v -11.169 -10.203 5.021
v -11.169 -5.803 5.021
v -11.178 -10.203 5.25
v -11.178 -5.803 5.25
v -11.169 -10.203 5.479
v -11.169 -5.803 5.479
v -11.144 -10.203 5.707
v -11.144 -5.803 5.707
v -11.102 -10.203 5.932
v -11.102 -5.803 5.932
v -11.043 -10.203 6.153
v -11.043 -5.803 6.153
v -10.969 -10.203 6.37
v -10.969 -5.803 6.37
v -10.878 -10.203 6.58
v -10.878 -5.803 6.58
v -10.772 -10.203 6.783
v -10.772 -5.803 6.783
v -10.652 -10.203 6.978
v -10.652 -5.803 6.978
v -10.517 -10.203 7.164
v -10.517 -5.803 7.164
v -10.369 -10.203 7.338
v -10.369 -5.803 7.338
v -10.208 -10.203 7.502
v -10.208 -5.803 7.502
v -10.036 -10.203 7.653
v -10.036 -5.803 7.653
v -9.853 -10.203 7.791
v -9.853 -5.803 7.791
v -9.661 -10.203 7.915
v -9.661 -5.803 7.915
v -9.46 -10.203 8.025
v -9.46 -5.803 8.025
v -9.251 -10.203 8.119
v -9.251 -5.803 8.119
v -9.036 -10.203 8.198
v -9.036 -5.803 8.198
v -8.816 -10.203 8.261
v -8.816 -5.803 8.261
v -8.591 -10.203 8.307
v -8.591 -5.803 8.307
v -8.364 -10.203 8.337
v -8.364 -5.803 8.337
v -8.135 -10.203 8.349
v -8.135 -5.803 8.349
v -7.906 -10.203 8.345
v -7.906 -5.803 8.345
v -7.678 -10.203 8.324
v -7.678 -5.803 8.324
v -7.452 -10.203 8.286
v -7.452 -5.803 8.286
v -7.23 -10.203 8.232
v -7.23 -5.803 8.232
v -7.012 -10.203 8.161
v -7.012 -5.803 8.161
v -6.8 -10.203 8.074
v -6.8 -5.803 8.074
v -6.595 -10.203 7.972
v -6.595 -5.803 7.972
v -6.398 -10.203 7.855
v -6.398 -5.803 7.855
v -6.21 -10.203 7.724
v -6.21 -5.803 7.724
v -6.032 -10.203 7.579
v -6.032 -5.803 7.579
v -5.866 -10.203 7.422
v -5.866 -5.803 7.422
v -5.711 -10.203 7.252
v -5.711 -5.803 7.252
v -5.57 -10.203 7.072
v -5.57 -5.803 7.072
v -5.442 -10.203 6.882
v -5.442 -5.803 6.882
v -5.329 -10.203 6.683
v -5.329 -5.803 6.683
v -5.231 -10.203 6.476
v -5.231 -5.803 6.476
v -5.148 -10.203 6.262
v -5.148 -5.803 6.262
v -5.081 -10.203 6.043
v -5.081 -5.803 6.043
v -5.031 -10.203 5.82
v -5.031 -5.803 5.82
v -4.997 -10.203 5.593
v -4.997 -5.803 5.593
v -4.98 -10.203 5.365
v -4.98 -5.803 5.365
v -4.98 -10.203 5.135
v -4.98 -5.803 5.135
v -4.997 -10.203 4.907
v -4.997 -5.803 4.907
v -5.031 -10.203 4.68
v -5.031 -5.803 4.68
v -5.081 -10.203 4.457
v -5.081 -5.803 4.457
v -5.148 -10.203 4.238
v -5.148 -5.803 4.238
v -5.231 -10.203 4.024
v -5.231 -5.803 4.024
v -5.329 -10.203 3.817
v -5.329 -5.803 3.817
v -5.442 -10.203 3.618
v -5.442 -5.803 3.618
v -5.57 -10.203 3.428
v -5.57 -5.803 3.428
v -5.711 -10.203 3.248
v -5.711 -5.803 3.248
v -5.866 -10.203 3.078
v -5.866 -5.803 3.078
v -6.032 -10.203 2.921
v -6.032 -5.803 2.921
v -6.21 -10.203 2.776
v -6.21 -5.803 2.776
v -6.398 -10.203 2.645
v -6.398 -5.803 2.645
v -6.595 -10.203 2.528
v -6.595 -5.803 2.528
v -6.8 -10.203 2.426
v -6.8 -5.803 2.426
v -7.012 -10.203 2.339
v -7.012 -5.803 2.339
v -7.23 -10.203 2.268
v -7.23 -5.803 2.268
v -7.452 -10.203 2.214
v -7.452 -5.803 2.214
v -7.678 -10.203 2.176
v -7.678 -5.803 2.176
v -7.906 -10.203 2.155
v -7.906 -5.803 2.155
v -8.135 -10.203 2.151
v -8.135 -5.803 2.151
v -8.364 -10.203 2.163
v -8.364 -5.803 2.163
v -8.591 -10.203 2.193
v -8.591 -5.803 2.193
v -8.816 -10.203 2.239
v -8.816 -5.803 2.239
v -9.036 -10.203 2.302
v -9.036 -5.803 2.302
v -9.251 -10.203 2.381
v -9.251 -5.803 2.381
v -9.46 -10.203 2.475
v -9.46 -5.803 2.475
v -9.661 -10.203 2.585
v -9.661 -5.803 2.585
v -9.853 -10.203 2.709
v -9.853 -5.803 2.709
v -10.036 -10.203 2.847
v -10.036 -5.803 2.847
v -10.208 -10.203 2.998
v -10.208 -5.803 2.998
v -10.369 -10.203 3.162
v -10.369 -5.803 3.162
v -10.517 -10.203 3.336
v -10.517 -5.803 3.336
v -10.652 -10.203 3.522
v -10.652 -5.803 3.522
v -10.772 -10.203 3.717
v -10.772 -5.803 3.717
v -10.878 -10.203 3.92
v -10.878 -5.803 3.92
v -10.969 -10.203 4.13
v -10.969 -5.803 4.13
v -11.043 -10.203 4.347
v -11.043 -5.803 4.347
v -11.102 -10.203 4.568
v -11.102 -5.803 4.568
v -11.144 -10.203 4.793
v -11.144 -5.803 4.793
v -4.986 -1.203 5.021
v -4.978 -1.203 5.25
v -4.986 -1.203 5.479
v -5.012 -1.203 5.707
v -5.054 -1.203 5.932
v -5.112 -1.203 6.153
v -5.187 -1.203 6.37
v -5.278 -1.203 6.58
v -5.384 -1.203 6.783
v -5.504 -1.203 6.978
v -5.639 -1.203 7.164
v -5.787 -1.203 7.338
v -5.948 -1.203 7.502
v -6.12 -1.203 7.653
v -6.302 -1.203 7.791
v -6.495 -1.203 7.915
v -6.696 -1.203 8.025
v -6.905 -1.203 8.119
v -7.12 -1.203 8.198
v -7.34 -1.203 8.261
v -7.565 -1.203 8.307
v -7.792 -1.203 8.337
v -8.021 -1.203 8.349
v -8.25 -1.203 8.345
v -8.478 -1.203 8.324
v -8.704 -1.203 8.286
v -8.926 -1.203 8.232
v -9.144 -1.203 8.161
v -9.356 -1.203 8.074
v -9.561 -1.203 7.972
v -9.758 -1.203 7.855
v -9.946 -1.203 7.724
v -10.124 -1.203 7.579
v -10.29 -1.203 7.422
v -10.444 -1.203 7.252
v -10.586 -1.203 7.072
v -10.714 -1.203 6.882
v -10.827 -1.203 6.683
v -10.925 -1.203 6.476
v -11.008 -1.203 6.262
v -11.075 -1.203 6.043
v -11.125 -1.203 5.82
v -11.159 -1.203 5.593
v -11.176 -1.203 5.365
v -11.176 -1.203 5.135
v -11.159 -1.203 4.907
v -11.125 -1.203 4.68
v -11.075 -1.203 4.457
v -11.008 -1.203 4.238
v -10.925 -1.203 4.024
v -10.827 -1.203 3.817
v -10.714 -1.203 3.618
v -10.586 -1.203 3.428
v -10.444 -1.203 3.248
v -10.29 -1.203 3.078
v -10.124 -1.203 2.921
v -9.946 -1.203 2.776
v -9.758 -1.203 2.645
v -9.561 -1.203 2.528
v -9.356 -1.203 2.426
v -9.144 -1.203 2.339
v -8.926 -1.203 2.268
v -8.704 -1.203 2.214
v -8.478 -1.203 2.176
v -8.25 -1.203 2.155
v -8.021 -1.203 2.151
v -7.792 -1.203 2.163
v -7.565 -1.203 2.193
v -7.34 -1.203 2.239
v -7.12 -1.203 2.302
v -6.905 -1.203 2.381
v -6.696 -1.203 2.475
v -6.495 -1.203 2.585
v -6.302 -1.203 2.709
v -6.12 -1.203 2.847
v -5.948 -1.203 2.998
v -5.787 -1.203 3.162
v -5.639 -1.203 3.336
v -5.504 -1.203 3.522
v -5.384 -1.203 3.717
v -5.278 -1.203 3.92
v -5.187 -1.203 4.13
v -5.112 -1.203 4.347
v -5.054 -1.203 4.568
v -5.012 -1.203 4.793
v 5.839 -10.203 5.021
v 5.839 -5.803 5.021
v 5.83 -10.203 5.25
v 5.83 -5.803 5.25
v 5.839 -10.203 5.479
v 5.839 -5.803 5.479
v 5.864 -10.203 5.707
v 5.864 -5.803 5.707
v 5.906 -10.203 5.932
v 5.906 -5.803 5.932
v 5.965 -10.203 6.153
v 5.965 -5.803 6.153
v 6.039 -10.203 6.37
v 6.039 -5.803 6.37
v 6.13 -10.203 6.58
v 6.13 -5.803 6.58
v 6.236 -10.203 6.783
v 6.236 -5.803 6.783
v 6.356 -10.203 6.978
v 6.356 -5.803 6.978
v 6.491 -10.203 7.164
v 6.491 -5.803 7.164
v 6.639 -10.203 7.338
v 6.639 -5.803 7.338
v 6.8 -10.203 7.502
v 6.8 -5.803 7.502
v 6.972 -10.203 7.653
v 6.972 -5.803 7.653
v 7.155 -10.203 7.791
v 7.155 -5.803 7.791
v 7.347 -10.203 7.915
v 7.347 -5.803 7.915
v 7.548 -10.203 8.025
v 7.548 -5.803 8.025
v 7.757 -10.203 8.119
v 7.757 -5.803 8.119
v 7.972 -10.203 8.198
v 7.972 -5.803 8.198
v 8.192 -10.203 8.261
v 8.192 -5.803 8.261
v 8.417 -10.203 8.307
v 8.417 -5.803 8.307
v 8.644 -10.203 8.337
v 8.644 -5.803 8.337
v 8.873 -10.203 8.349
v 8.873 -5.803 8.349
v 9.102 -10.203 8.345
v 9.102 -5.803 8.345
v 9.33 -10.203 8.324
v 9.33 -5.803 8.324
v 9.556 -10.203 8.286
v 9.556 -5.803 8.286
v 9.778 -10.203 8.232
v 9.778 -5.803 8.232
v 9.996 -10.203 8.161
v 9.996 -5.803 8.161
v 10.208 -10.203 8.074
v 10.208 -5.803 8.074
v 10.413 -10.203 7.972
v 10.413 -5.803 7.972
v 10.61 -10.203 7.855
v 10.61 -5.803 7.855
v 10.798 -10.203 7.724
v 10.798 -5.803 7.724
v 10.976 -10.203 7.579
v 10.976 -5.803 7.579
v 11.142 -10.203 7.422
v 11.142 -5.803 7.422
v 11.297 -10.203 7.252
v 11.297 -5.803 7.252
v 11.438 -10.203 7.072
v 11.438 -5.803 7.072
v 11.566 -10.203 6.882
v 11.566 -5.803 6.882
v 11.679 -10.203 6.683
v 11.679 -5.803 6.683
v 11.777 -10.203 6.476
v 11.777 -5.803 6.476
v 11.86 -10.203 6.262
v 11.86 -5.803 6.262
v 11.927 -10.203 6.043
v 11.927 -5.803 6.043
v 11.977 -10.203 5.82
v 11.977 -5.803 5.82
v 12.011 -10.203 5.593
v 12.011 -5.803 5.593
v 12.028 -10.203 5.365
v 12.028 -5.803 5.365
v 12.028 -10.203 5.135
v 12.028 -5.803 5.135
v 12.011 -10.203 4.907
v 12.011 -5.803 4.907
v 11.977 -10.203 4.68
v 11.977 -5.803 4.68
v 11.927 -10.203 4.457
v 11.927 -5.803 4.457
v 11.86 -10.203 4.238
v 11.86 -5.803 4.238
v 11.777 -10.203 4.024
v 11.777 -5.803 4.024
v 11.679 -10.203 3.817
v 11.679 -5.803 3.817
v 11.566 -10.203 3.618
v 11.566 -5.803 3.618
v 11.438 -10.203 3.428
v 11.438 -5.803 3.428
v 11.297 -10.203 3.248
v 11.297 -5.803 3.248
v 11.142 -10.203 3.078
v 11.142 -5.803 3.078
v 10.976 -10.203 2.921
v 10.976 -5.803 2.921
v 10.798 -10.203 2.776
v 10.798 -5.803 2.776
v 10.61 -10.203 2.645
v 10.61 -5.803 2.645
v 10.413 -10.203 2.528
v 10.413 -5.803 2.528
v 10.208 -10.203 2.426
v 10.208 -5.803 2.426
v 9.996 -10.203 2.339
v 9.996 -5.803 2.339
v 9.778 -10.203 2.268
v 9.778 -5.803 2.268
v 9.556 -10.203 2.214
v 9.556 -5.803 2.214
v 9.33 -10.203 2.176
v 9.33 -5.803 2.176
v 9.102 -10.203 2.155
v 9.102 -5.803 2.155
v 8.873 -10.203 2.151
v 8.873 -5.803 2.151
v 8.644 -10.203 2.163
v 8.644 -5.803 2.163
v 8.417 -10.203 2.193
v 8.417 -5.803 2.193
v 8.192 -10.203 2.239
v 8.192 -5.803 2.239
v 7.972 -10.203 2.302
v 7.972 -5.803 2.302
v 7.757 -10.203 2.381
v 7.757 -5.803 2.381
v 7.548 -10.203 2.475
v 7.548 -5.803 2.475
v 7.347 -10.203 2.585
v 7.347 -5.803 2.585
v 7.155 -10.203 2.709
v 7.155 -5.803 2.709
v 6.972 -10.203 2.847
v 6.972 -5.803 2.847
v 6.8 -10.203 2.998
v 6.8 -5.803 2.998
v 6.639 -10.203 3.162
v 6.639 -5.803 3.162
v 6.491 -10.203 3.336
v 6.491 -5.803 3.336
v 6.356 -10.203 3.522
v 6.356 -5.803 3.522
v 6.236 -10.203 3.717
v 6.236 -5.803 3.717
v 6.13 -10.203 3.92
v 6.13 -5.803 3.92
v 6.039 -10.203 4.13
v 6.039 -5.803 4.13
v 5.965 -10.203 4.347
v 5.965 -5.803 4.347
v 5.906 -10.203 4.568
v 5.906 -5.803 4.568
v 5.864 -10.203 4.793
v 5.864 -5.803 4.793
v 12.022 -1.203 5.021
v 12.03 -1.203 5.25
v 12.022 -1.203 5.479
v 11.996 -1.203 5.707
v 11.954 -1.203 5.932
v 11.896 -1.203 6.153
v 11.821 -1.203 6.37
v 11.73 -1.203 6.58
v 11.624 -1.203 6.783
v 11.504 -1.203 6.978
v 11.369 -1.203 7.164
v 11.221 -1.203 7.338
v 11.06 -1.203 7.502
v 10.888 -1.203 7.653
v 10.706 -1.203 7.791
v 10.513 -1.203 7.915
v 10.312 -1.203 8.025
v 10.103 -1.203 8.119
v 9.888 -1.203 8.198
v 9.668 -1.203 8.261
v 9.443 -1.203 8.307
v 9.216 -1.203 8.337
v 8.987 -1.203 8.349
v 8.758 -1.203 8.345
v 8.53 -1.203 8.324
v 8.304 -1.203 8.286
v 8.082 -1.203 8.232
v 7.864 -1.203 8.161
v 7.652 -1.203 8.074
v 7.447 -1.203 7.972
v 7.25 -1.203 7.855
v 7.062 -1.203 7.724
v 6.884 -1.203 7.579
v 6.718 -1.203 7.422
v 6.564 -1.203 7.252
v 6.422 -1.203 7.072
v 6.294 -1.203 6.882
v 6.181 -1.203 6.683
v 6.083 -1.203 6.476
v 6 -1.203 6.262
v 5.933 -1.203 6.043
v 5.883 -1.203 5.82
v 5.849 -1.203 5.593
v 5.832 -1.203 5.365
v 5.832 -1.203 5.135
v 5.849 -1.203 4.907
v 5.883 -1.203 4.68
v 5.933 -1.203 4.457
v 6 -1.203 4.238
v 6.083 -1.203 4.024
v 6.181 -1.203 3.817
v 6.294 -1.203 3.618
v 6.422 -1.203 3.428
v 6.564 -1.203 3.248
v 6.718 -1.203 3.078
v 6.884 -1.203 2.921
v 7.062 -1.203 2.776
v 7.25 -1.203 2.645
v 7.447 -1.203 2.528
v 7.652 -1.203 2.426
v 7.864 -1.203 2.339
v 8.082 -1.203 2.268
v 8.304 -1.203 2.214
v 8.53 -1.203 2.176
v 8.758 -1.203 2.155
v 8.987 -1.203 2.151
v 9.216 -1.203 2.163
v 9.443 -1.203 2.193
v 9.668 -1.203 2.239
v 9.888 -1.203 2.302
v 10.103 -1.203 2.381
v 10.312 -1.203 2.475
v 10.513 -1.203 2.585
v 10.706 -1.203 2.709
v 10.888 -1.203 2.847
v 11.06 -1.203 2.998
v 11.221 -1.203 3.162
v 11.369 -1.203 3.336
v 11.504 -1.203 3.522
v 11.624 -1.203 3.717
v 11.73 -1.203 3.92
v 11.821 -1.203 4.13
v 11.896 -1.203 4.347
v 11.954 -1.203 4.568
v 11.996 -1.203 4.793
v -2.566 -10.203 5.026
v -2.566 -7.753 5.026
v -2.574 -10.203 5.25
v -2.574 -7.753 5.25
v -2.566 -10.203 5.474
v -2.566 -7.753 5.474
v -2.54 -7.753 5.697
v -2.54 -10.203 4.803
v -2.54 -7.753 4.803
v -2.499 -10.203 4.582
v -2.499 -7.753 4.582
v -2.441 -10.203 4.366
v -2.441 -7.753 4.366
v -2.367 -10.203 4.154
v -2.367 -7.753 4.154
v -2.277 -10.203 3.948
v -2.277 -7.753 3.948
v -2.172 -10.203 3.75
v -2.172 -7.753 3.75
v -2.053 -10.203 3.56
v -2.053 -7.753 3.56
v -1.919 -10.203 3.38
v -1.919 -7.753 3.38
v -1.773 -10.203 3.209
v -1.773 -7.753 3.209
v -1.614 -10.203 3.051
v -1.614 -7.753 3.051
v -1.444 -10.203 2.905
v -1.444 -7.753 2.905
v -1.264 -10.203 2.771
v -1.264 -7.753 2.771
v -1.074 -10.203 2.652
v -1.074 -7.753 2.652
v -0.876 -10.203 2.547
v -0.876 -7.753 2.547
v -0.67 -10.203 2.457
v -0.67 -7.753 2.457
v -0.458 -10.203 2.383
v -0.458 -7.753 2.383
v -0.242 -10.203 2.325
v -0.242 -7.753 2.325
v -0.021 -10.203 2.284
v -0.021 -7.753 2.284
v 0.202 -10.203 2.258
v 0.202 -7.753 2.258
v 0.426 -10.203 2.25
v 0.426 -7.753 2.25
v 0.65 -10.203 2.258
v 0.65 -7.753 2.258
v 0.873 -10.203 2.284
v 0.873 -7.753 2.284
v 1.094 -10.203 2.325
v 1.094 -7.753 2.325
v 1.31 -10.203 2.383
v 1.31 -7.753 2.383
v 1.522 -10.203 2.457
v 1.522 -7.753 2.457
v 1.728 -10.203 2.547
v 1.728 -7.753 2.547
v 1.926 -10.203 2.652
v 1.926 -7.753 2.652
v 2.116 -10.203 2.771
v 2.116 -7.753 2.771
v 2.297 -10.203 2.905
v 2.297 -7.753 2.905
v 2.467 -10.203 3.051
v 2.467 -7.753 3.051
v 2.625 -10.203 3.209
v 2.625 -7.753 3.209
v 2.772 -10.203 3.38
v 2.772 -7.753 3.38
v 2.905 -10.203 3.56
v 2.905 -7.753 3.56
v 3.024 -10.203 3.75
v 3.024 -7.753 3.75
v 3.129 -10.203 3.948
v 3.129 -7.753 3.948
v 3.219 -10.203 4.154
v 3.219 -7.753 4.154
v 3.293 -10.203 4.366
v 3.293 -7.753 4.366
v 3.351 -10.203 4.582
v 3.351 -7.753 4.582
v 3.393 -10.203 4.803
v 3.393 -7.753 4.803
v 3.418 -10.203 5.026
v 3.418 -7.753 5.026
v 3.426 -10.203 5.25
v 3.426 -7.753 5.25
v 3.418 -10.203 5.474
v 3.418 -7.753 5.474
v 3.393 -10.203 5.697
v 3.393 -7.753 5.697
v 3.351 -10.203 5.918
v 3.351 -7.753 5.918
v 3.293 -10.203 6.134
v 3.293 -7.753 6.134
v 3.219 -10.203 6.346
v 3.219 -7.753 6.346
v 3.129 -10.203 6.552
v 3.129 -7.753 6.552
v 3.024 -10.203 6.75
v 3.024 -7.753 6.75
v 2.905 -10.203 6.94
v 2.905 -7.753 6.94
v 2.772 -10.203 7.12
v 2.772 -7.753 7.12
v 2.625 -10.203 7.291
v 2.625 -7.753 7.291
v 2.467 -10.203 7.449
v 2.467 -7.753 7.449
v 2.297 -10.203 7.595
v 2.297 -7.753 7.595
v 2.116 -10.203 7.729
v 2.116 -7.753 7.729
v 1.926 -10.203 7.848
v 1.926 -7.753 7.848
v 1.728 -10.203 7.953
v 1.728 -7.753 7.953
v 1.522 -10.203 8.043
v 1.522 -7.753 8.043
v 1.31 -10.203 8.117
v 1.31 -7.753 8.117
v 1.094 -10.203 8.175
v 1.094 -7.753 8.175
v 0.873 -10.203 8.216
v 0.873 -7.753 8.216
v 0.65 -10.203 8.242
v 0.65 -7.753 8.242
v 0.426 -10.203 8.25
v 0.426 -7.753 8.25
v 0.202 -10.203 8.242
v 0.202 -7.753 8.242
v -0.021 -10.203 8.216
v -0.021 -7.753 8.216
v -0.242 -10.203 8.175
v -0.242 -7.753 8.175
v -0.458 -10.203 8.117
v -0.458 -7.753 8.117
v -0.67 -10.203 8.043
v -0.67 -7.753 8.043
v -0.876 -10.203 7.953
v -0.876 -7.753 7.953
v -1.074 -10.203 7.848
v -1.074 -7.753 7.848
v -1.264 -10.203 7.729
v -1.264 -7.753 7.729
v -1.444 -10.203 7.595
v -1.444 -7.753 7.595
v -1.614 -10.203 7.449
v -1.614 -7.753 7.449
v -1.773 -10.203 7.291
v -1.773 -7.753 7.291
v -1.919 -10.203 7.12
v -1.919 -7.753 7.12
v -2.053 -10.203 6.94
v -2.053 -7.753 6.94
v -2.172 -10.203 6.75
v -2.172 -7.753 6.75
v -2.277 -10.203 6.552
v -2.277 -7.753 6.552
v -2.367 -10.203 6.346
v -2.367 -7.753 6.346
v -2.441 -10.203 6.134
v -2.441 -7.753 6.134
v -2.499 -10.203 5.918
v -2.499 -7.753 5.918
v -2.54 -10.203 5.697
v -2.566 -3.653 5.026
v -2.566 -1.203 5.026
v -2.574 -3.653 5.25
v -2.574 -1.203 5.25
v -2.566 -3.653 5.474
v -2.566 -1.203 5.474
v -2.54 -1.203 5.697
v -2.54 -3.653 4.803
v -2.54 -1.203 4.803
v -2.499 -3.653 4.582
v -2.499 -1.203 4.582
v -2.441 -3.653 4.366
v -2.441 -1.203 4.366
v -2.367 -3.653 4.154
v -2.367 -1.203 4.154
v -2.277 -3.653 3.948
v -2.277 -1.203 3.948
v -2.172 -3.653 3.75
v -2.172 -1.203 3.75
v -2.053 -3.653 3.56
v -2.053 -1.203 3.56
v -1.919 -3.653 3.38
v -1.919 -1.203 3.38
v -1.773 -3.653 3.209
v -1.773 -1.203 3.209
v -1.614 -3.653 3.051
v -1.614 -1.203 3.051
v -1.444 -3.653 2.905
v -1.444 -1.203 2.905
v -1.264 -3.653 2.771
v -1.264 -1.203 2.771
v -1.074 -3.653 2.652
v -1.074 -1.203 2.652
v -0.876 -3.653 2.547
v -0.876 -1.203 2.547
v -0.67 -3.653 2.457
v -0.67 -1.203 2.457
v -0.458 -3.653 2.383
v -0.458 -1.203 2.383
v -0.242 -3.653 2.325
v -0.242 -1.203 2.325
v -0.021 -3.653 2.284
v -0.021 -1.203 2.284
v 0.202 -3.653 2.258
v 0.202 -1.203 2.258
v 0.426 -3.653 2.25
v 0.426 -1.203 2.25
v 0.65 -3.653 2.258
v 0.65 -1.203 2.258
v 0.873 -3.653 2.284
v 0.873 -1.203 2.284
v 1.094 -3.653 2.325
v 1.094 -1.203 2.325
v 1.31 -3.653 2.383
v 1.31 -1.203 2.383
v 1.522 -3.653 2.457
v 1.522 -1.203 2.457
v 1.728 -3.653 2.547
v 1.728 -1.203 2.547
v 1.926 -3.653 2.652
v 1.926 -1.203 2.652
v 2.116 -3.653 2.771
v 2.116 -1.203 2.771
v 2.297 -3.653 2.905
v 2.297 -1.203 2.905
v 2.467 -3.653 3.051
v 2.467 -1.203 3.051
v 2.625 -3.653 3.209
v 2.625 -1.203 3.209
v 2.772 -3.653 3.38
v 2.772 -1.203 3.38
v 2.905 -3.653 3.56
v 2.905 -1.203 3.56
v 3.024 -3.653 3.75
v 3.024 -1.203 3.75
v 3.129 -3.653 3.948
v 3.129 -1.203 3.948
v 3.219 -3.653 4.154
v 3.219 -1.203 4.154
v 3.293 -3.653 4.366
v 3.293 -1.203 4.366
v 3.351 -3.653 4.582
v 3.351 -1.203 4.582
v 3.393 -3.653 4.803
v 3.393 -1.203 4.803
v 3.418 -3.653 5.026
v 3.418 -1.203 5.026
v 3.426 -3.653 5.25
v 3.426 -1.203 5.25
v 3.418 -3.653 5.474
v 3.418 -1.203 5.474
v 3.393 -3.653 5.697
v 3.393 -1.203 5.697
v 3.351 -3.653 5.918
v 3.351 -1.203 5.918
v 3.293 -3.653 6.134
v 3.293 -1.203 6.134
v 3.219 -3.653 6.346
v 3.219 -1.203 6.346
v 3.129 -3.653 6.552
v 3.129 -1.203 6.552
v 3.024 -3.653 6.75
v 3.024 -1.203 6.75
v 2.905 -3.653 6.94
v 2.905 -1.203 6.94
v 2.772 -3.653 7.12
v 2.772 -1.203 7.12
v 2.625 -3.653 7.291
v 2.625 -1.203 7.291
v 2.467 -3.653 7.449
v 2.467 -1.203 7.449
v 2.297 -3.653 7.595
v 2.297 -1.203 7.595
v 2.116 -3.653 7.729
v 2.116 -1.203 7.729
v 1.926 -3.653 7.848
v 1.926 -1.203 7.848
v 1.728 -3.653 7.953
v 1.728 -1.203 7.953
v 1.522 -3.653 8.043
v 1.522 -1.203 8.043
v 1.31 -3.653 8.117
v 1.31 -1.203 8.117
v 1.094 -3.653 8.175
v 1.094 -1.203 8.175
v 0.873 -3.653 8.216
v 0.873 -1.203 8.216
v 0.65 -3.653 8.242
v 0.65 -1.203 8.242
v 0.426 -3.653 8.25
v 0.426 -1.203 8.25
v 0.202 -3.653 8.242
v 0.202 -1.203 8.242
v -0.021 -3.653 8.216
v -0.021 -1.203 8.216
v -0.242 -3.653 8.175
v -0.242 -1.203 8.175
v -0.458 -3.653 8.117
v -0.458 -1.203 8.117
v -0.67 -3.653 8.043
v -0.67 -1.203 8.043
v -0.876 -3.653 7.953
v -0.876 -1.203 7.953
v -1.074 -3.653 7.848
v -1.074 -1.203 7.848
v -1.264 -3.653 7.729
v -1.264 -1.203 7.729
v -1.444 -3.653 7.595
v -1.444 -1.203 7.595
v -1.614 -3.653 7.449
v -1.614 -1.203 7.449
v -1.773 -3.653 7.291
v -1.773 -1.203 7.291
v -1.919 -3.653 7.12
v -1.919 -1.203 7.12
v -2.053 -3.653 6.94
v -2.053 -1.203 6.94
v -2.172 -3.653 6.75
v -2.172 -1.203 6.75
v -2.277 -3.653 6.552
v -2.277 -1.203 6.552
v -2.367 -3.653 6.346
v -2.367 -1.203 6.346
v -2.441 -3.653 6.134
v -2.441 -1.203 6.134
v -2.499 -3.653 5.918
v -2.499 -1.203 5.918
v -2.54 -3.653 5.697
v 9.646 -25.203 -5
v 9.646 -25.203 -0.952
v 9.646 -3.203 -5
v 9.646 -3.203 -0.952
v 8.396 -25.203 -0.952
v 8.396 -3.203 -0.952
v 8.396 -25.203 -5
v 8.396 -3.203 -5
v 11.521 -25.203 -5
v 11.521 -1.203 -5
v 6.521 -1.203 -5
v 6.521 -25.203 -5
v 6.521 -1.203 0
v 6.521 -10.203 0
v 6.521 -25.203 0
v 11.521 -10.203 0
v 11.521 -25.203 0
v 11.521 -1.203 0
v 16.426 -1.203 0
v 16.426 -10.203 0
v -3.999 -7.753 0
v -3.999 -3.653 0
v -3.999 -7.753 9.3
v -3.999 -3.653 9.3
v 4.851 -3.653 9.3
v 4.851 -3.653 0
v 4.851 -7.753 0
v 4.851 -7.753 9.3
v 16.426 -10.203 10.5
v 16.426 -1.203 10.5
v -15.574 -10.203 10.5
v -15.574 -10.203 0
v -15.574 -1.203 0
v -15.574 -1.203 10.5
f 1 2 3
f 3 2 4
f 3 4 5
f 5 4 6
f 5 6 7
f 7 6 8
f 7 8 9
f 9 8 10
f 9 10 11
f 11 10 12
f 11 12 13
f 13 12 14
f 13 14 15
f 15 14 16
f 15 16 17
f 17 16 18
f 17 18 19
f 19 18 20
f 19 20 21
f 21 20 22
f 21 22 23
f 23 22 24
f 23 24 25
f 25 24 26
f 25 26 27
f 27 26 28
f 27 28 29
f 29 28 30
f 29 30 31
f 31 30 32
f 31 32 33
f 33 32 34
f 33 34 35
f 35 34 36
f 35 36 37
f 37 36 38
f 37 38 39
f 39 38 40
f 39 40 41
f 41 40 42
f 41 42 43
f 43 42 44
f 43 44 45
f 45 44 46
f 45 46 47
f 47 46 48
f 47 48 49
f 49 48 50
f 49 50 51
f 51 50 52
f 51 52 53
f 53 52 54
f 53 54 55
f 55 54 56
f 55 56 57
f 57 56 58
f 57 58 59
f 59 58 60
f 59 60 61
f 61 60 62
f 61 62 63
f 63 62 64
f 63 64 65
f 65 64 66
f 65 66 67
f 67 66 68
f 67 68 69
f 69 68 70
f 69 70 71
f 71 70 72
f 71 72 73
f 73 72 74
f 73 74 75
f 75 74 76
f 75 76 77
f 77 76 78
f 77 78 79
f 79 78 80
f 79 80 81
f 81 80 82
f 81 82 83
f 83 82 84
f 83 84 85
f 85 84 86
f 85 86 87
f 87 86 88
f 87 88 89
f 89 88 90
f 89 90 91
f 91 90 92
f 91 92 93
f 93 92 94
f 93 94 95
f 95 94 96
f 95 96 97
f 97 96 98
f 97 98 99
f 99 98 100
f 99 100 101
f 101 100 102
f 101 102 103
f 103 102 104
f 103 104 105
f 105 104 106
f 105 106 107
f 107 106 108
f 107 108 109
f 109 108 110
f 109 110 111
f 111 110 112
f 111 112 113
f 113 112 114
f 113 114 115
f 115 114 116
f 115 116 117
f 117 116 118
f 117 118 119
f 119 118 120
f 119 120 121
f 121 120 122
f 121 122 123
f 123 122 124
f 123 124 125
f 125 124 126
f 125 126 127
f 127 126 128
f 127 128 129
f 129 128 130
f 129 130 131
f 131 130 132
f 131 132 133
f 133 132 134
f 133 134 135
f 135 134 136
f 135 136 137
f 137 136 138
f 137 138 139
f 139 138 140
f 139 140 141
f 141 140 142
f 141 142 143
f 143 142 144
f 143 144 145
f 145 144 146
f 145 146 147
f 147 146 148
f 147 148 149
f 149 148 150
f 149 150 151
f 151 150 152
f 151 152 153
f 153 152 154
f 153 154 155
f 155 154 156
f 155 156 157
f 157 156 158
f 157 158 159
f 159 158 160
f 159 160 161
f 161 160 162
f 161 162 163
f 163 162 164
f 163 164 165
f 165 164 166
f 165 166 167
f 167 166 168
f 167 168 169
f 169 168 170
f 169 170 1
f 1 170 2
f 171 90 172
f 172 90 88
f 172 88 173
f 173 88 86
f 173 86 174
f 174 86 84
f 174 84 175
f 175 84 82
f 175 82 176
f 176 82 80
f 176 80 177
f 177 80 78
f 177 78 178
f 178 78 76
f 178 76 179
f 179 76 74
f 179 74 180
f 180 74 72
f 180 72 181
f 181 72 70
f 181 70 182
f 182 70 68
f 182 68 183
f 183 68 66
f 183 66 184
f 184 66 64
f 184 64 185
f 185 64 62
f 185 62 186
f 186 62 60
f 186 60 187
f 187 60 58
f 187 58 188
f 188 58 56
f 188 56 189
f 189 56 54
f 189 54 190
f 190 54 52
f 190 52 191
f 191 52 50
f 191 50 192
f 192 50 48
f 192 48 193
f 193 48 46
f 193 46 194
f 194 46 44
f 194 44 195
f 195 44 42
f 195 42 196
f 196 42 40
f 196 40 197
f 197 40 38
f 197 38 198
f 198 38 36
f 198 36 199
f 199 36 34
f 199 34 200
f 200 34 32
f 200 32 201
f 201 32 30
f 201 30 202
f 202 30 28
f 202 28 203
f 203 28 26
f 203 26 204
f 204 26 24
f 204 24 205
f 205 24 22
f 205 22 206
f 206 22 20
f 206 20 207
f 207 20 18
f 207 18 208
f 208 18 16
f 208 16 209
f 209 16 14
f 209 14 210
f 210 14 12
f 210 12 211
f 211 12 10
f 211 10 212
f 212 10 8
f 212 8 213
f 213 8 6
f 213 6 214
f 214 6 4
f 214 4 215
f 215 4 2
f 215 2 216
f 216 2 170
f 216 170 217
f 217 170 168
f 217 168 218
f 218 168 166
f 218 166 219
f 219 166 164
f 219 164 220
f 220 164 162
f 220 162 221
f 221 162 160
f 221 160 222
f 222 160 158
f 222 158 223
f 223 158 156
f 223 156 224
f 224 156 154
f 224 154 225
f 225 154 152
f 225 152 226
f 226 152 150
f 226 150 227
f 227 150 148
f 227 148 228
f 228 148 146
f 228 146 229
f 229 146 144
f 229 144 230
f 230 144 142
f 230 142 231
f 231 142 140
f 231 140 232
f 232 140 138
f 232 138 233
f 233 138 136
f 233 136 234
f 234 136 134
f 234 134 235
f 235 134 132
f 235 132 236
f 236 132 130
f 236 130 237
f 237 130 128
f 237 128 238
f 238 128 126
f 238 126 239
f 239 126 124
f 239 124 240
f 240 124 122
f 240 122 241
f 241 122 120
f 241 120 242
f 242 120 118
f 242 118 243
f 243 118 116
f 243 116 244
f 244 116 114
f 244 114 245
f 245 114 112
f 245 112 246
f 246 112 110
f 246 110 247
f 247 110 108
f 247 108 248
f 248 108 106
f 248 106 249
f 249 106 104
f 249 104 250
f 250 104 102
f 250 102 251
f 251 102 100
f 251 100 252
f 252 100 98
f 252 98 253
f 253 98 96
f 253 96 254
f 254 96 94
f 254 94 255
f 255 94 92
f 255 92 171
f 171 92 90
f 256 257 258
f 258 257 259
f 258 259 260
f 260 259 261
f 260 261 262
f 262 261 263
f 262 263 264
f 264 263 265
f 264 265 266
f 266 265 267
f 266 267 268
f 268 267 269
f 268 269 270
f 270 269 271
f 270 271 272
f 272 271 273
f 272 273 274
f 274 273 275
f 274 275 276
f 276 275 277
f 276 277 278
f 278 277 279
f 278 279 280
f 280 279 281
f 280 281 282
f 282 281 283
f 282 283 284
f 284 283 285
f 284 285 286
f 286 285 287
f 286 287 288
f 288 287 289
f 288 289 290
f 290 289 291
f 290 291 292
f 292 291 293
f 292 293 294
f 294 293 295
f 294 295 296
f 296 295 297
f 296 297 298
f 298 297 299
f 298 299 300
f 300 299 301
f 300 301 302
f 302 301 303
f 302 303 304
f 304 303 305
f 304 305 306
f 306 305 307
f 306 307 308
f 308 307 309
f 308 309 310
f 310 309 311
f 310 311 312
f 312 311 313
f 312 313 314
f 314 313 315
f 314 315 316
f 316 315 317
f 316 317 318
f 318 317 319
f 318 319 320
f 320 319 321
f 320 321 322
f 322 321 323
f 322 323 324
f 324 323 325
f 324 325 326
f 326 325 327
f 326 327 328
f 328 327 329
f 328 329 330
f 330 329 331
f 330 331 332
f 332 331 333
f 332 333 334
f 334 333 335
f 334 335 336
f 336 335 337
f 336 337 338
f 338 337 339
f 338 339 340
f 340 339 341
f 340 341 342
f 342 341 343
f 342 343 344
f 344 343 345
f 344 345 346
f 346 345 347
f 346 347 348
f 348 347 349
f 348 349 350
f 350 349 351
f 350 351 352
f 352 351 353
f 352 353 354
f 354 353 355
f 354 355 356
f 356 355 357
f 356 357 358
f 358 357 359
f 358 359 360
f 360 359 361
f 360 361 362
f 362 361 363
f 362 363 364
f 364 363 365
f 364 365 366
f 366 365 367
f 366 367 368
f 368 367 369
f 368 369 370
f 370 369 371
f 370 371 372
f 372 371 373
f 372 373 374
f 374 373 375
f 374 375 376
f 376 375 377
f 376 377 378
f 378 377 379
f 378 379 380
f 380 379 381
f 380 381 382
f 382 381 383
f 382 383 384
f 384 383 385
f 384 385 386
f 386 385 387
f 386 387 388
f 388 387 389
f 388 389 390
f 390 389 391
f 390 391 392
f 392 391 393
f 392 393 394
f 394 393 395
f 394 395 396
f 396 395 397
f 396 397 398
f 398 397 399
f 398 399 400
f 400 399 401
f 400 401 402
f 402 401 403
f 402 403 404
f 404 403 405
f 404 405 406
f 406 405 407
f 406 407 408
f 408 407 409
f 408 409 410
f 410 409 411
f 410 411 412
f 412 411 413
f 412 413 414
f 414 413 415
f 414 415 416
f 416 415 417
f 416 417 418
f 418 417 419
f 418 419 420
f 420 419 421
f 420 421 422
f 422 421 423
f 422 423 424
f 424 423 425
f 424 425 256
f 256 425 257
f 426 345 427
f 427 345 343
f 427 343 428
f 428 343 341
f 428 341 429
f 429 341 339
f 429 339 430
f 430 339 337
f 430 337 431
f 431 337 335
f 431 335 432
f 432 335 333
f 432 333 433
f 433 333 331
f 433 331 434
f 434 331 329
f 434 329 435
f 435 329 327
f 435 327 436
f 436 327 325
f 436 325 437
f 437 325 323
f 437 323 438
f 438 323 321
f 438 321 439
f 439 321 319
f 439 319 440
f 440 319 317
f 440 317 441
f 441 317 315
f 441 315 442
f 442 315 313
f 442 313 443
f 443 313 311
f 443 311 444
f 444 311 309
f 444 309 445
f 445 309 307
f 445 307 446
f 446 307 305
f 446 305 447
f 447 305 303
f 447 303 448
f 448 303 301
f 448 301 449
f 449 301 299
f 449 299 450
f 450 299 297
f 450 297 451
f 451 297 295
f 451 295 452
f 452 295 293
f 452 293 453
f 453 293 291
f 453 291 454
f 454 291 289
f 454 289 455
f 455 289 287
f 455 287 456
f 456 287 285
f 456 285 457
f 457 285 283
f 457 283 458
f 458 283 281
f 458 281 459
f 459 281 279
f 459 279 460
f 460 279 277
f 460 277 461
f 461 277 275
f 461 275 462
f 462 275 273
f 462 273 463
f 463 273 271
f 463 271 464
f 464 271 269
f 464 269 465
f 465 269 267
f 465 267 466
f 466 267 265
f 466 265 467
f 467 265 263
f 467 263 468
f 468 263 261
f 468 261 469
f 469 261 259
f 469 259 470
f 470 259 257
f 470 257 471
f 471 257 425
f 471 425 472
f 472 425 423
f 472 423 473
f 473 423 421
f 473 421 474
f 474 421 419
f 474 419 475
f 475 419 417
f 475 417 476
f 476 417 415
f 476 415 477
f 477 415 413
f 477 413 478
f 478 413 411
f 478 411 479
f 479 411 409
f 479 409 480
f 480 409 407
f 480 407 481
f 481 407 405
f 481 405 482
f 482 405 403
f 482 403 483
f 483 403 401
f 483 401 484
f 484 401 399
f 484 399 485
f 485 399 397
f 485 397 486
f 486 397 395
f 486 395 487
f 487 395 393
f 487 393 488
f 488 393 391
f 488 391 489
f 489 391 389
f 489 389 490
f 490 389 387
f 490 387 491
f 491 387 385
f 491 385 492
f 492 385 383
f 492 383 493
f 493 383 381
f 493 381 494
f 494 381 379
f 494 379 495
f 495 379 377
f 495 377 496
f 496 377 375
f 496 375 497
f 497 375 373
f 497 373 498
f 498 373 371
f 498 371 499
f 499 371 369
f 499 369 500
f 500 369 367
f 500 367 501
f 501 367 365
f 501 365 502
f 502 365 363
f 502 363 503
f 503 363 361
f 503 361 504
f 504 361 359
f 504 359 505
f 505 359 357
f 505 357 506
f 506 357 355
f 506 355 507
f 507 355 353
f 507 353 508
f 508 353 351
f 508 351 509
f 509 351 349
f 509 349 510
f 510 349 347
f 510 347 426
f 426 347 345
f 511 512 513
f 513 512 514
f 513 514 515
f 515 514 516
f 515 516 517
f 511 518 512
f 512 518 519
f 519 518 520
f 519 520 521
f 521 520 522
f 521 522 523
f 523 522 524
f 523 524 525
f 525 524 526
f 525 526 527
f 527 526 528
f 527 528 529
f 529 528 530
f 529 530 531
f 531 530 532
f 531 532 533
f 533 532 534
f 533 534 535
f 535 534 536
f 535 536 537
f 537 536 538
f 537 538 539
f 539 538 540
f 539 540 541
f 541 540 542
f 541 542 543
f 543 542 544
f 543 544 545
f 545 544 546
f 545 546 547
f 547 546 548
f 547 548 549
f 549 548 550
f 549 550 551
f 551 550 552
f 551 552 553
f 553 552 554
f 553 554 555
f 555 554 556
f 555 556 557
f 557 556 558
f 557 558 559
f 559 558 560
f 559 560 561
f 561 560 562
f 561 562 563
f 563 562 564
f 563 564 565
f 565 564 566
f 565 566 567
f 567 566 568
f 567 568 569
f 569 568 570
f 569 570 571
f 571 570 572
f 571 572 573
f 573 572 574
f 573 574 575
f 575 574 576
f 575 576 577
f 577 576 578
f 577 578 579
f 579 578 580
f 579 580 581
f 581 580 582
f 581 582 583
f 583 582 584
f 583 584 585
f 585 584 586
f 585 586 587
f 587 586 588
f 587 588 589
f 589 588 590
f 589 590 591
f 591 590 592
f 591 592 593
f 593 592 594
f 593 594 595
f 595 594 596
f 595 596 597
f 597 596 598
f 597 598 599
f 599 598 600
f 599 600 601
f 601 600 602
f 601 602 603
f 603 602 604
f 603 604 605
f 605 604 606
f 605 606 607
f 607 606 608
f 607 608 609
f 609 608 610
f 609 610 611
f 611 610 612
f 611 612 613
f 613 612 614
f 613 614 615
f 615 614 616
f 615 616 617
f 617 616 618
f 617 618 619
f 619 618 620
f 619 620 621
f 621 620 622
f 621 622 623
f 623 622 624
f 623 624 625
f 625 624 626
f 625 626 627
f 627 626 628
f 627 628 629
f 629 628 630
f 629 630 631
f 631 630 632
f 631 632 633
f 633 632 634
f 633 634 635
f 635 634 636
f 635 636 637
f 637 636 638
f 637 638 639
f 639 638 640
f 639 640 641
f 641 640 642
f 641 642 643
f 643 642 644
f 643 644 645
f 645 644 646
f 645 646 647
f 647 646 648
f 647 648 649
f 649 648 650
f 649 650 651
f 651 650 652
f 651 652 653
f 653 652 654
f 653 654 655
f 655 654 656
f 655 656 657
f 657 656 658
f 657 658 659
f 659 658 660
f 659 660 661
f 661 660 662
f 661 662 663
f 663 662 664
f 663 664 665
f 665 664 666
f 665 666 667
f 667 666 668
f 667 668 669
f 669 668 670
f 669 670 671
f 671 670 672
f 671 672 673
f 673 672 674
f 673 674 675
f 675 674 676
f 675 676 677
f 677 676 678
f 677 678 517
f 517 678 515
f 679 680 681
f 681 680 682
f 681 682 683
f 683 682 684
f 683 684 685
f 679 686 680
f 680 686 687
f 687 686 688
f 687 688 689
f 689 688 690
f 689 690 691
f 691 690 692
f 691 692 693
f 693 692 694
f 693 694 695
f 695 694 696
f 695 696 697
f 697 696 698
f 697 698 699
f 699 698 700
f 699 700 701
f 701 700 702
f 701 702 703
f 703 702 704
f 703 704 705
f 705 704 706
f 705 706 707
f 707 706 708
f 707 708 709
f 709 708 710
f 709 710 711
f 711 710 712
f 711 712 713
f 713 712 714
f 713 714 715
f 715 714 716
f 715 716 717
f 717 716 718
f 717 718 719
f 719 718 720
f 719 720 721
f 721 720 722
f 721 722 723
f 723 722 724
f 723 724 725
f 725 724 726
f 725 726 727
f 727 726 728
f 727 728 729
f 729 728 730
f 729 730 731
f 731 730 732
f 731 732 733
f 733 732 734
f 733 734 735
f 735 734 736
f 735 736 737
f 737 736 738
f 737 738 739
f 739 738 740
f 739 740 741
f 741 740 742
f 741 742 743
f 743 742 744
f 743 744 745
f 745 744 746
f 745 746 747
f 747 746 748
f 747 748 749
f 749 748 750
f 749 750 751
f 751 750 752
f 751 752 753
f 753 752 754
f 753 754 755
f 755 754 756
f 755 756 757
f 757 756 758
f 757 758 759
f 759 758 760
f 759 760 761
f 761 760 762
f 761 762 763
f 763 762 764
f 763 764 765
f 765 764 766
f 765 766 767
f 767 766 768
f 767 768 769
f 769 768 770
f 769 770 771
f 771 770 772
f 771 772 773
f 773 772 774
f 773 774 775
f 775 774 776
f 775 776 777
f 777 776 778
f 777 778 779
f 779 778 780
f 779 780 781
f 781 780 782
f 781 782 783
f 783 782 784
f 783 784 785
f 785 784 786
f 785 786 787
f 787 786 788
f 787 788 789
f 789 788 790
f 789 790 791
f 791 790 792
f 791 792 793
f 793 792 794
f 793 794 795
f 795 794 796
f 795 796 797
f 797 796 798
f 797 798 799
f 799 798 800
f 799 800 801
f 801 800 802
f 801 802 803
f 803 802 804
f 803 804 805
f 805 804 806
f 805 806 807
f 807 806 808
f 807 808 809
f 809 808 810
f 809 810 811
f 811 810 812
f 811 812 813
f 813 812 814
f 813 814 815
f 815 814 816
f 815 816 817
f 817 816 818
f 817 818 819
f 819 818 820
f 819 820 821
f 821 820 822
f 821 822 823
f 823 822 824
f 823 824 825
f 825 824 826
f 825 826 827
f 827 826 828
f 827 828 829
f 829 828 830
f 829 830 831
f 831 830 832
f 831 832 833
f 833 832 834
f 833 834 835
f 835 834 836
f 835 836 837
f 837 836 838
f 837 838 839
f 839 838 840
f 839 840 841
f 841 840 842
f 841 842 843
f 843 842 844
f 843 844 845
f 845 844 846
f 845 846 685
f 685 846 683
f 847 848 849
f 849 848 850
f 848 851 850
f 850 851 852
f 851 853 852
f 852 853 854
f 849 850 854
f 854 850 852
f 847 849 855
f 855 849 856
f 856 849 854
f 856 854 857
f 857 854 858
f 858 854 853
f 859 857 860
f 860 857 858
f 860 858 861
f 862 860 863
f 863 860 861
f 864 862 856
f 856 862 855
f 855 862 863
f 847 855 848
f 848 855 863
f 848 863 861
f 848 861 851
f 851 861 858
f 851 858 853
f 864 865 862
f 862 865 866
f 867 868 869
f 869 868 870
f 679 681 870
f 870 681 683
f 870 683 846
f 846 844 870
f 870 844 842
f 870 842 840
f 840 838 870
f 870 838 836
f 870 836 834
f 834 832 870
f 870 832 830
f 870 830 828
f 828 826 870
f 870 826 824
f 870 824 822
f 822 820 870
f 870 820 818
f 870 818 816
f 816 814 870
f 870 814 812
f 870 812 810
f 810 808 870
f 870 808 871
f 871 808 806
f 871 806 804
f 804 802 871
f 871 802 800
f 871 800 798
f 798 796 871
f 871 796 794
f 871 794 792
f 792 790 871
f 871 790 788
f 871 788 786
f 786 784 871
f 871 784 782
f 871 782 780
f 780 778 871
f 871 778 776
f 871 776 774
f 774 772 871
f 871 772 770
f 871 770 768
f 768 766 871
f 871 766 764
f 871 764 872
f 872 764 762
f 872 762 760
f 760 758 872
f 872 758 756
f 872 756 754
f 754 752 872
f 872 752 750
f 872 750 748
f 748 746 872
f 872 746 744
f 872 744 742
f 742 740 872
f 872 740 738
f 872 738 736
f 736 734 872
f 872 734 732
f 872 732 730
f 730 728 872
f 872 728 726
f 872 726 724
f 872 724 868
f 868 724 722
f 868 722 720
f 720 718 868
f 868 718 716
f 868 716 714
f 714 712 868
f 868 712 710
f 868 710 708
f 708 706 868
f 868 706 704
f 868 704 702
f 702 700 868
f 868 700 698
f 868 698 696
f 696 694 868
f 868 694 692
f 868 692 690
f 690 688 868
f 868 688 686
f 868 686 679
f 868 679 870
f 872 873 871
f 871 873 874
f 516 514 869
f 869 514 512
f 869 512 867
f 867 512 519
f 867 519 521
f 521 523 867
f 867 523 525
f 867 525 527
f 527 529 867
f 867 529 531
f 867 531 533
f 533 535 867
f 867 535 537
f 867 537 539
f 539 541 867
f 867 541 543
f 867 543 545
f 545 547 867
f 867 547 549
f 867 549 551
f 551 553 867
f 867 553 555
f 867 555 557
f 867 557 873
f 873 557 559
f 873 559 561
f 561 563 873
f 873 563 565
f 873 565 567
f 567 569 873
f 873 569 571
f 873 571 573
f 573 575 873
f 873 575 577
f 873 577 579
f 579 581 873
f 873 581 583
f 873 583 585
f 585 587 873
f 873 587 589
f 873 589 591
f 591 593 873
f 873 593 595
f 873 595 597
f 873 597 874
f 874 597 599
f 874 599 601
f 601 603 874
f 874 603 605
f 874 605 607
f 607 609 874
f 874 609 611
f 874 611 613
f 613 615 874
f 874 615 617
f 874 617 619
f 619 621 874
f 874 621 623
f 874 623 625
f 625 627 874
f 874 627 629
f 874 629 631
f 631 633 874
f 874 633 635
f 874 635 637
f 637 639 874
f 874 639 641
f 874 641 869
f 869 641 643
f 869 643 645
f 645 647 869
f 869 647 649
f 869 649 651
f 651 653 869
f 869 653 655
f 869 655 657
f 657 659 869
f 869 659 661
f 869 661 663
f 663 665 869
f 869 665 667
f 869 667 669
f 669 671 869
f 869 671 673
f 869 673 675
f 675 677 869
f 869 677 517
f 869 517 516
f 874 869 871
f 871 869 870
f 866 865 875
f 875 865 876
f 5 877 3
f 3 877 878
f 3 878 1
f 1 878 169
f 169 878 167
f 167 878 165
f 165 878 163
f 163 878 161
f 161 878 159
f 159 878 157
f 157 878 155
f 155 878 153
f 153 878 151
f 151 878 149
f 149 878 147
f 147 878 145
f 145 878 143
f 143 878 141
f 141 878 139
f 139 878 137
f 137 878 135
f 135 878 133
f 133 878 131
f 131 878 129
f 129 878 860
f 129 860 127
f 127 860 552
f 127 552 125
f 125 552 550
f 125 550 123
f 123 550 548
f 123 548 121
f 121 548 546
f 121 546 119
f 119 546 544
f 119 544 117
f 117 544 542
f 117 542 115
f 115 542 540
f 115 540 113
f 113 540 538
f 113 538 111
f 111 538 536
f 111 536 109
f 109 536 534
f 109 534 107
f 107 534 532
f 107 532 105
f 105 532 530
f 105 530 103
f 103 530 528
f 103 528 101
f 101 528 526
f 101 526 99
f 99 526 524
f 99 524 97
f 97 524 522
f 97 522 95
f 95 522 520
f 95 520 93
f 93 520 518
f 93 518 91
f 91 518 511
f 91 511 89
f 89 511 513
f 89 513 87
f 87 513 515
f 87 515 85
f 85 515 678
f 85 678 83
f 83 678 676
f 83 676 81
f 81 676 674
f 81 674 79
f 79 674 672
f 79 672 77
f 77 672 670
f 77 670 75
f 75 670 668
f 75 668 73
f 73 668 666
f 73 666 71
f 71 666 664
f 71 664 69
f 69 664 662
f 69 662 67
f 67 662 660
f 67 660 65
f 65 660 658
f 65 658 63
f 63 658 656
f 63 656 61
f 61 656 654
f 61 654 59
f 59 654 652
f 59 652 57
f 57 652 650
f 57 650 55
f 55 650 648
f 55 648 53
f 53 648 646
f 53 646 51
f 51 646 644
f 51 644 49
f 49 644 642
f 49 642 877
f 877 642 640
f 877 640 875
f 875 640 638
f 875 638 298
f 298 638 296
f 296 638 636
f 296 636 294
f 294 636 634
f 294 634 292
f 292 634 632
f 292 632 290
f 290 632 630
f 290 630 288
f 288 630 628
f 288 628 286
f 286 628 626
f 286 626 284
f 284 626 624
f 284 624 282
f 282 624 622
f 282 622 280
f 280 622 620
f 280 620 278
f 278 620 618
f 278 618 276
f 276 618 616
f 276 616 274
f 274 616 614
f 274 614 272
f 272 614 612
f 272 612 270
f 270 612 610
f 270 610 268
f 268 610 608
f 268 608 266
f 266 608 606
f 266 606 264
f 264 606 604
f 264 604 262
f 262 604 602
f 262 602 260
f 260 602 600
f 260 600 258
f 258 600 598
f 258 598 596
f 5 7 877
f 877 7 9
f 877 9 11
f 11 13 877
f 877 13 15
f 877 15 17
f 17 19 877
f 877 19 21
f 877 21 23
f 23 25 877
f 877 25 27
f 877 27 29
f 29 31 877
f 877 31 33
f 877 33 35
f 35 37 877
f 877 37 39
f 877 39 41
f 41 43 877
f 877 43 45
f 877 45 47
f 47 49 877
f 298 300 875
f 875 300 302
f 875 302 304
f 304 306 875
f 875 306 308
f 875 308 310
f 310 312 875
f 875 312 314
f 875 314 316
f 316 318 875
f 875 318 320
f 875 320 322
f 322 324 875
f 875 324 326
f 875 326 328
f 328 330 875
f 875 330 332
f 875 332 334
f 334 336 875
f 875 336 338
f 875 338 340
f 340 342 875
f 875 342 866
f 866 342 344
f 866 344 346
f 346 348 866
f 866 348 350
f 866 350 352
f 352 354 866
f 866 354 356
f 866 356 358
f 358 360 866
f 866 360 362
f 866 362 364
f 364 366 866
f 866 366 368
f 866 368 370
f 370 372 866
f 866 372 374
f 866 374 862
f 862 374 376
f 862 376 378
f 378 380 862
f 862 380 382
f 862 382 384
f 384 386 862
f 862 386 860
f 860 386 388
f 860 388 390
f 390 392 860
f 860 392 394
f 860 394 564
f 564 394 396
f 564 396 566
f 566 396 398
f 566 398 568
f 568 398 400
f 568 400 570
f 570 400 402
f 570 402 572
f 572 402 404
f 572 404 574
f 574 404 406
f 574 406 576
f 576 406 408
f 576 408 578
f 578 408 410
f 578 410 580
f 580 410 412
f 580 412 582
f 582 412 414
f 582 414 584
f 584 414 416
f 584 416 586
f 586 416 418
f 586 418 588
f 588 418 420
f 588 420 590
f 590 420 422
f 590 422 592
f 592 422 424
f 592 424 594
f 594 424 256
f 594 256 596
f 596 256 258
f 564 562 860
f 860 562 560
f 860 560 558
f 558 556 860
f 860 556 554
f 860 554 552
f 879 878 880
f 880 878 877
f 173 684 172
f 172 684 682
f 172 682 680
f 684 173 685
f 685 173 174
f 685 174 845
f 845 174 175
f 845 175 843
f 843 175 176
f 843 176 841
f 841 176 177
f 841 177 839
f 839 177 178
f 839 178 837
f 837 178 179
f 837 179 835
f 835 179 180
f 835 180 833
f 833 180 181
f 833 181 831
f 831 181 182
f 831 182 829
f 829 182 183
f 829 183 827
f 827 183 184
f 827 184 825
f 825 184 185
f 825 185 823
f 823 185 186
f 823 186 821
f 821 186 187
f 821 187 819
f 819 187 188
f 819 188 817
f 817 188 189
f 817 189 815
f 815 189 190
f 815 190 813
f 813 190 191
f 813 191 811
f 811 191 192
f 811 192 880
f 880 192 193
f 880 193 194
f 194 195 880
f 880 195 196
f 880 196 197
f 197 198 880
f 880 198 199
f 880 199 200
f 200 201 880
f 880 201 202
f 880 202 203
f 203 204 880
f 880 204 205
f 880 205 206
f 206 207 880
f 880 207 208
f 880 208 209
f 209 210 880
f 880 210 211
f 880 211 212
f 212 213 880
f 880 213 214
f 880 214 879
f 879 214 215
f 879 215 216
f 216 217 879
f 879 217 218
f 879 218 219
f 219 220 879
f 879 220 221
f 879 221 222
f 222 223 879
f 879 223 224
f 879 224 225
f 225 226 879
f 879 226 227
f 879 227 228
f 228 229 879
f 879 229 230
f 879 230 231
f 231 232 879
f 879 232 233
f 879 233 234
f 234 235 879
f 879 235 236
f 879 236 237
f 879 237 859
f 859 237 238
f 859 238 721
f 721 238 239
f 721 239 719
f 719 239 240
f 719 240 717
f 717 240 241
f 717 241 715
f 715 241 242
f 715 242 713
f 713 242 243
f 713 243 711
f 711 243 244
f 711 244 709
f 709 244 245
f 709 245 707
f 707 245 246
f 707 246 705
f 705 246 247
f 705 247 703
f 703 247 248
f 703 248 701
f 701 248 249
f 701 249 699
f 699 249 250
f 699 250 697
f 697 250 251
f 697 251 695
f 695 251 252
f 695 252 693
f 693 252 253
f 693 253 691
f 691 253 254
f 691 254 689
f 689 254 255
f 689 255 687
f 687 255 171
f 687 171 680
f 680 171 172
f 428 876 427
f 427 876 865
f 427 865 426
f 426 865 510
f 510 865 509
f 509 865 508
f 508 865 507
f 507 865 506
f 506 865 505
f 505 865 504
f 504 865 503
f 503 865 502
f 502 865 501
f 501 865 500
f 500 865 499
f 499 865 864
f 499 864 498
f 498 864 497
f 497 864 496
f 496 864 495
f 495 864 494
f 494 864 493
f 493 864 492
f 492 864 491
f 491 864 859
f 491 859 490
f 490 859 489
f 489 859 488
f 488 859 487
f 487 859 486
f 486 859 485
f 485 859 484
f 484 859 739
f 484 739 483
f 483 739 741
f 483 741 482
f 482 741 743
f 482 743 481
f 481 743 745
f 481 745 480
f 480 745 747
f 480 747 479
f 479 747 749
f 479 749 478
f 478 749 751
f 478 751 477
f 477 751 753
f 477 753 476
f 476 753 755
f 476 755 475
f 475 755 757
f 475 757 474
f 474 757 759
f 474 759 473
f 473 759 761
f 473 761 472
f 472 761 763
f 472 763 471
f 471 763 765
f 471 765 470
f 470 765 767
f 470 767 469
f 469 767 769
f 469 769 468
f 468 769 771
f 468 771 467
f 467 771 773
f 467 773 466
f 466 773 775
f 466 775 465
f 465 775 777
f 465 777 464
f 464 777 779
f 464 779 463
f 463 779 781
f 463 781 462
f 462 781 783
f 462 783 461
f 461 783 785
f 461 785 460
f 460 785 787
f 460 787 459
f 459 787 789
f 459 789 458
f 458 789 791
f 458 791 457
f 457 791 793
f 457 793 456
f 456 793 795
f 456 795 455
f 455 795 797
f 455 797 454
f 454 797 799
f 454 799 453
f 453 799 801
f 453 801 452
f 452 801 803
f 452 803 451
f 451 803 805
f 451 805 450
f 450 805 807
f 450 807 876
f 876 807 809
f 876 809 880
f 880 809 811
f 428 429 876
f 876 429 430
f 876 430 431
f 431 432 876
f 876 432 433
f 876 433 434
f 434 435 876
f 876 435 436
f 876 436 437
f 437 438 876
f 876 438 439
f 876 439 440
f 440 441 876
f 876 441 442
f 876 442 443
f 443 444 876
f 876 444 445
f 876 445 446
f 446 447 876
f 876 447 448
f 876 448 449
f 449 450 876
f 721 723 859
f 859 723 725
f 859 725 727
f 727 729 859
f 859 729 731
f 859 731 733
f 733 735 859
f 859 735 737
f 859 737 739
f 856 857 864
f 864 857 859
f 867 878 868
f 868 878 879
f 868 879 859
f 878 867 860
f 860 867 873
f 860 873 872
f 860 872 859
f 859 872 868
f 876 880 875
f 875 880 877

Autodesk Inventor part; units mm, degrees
ref_plane "YZ Plane" through (0, 0, 0) normal (1, 0, 0) x (0, 1, 0)
ref_plane "XZ Plane" through (0, 0, 0) normal (0, 1, 0) x (-1, 0, 0)
ref_plane "XY Plane" through (0, 0, 0) normal (0, 0, 1) x (1, 0, 0)
sketch "Skizze1" plane through (0, 0, 0) normal (0, 0, 1) x (1, 0, 0)
  point P0 (0, 0)
sketch "Skizze2" plane through (0, 0, 0) normal (0, 0, 1) x (1, 0, 0)
  line L0 (-15.5739, -1.2028) -> (16.4261, -1.2028)
  line L1 (16.4261, -1.2028) -> (16.4261, -10.2028)
  line L2 (16.4261, -10.2028) -> (-15.5739, -10.2028)
  line L3 (-15.5739, -10.2028) -> (-15.5739, -1.2028)
  point P0 (0, 0)
  dimension "d0" = 32
  dimension "d1" = 9
extrude "Extrusion1" add sketch "Skizze2" along normal blind 10.5
sketch "Skizze3" plane through (16.4261, -10.2028, 0) normal (1, 0, 0) x (0, 0, -1)
  point P0 (0, 10.2028)
sketch "Skizze4" plane through (-15.5739, -1.2028, 0) normal (0, 1, 0) x (1, 0, 0)
  line L0 (0, 0) -> (0, -10.5) projected
  line L1 (0, 0) -> (32, 0) projected
  point P0 (15.5739, 0)
  point P1 (16, -5.25)
  point P2 (7.496, -5.25)
  point P3 (24.504, -5.25)
  dimension "d4" = 8.504
  dimension "d5" = 8.504
  dimension "d6" = 16
  dimension "d14" = 5.25
  dimension "d15" = 5.25
sketch "Skizze5" plane through (0, 0, 0) normal (0, 0, -1) x (-1, 0, 0)
  point P0 (0, 0)
sketch "Skizze6" plane through (0, 0, 0) normal (0, 0, -1) x (-1, 0, 0)
  line L0 (-4.8511, -7.7528) -> (3.9989, -7.7528)
  line L1 (3.9989, -7.7528) -> (3.9989, -3.6528)
  line L2 (3.9989, -3.6528) -> (-4.8511, -3.6528)
  line L3 (-4.8511, -3.6528) -> (-4.8511, -7.7528)
  line L4 (-16.4261, -10.2028) -> (15.5739, -10.2028) projected
  line L5 (15.5739, -10.2028) -> (15.5739, -1.2028) projected
  point P0 (0, 0)
  dimension "d16" = 8.85
  dimension "d17" = 4.1
  dimension "d18" = 2.45
  dimension "d19" = 11.575
extrude "Extrusion2" cut sketch "Skizze6" against normal blind 9.3
sketch "Skizze7" plane through (-15.5739, -10.2028, 0) normal (0, -1, 0) x (1, 0, 0)
  point P0 (15.5739, 0)
sketch "Skizze8" plane through (0, 0, 0) normal (0, 0, -1) x (-1, 0, 0)
  point P0 (0, 0)
sketch "Skizze9" plane through (-15.5739, -10.2028, 0) normal (0, -1, 0) x (1, 0, 0)
  line L0 (0, 0) -> (32, 0) projected
  line L1 (4.9045, 0) -> (9.9045, 0)
  line L2 (9.9045, 0) -> (9.9045, 1.2)
  line L3 (9.9045, 1.2) -> (4.9045, 1.2)
  line L4 (4.9045, 1.2) -> (4.9045, 0)
  point P0 (15.5739, 0)
  dimension "d22" = 1.2
  dimension "d23" = 5
extrude "Extrusion3" add sketch "Skizze9" along normal blind 15
sketch "Skizze10" plane through (0, 0, 0) normal (0, 0, -1) x (-1, 0, 0)
  line L0 (5.6694, -25.2028) -> (10.6694, -25.2028) projected
  line L1 (15.5739, -1.2028) -> (-16.4261, -1.2028) projected
  line L2 (10.6694, -25.2028) -> (5.6694, -25.2028)
  line L3 (5.6694, -25.2028) -> (5.6694, -1.2028)
  line L4 (5.6694, -1.2028) -> (10.6694, -1.2028)
  line L5 (10.6694, -1.2028) -> (10.6694, -25.2028)
  point P0 (0, 0)
  dimension "d26" = 5
extrude "Extrusion4" add sketch "Skizze10" along normal blind 5
sketch "Skizze11" plane through (-15.5739, -25.2028, 0) normal (0, -1, 0) x (1, 0, 0)
  line L0 (4.9045, -5) -> (9.9045, -5) projected
  line L1 (6.7795, -5) -> (8.0295, -5)
  line L2 (8.0295, -5) -> (8.0295, -0.9525)
  line L3 (8.0295, -0.9525) -> (6.7795, -0.9525)
  line L4 (6.7795, -0.9525) -> (6.7795, -5)
  line L5 (9.9045, 1.2) -> (9.9045, -5) projected
  point P0 (15.5739, 0)
  dimension "d29" = 1.25
  dimension "d30" = 1.875
  dimension "d31" = 4.0475
extrude "Extrusion5" cut sketch "Skizze11" against normal blind 22
sketch "Skizze12" plane through (-15.5739, -25.2028, 0) normal (0, -1, 0) x (1, 0, 0)
  line L0 (9.9045, 1.2) -> (9.9045, 0) projected
  line L1 (4.9045, 0) -> (4.9045, 1.2) projected
  line L2 (9.9045, 1.2) -> (4.9045, 1.2)
  line L3 (4.9045, 1.2) -> (4.9045, 0)
  line L4 (4.9045, 0) -> (9.9045, 0)
  line L5 (9.9045, 0) -> (9.9045, 1.2)
  point P0 (15.5739, 0)
extrude "Extrusion6" cut sketch "Skizze12" against normal blind 15
sketch "Skizze13" plane through (0, 0, 0) normal (0, 1, 0) x (-1, 0, 0)
  line L0 (5.6694, 0) -> (-16.4261, 0) projected
  line L1 (-6.5211, 0) -> (-11.5211, 0)
  line L2 (-11.5211, 0) -> (-11.5211, -5)
  line L3 (-11.5211, -5) -> (-6.5211, -5)
  line L4 (-6.5211, -5) -> (-6.5211, 0)
  line L5 (-16.4261, 0) -> (-16.4261, 10.5) projected
  point P0 (0, 0)
  dimension "d36" = 5
  dimension "d37" = 5
  dimension "d38" = 4.905
extrude "Extrusion7" add sketch "Skizze13" against normal blind 25.203
sketch "Skizze14" plane through (6.5211, 0, 0) normal (0, 0, 1) x (1, 0, 0)
  line L0 (5, -1.2028) -> (9.905, -1.2028) projected
  line L1 (0, 0) -> (0, -25.203) projected
  line L2 (5, -1.2028) -> (0, -1.2028)
  line L3 (0, -1.2028) -> (0, 0)
  line L4 (0, 0) -> (5, 0)
  line L5 (5, 0) -> (5, -1.2028)
  point P0 (-6.5211, 0)
extrude "Extrusion8" cut sketch "Skizze14" against normal blind 25
sketch "Skizze15" plane through (0, -25.203, 0) normal (0, -1, 0) x (1, 0, 0)
  line L0 (6.5211, -5) -> (11.5211, -5) projected
  line L1 (8.3961, -5) -> (9.6461, -5)
  line L2 (9.6461, -5) -> (9.6461, -0.952)
  line L3 (9.6461, -0.952) -> (8.3961, -0.952)
  line L4 (8.3961, -0.952) -> (8.3961, -5)
  line L5 (11.5211, -5) -> (11.5211, 0) projected
  point P0 (0, 0)
  dimension "d43" = 1.25
  dimension "d44" = 4.048
  dimension "d45" = 1.875
extrude "Extrusion9" cut sketch "Skizze15" against normal blind 22
sketch "Skizze16" plane through (-15.5739, -25.2028, 0) normal (0, -1, 0) x (1, 0, 0)
  line L0 (0, 0) -> (4.9045, 0) projected
  line L1 (4.9045, -5) -> (9.9045, -5) projected
  line L2 (4.9045, 0) -> (9.9045, 0)
  line L3 (9.9045, 0) -> (9.9045, -5)
  line L4 (9.9045, -5) -> (4.9045, -5)
  line L5 (4.9045, -5) -> (4.9045, 0)
  point P0 (15.5739, 0)
extrude "Extrusion10" cut sketch "Skizze16" against normal blind 25
hole "Bohrung2" at (0.4261, -1.2028, 5.25) direction (0, -1, 0) diameter 6 end through all
hole "Bohrung3" at (-8.0779, -1.2028, 5.25) at (8.9301, -1.2028, 5.25) direction (0, -1, 0) diameter 6.2 end through all
properties part number "Objektträgerhalter 3a Neu"
